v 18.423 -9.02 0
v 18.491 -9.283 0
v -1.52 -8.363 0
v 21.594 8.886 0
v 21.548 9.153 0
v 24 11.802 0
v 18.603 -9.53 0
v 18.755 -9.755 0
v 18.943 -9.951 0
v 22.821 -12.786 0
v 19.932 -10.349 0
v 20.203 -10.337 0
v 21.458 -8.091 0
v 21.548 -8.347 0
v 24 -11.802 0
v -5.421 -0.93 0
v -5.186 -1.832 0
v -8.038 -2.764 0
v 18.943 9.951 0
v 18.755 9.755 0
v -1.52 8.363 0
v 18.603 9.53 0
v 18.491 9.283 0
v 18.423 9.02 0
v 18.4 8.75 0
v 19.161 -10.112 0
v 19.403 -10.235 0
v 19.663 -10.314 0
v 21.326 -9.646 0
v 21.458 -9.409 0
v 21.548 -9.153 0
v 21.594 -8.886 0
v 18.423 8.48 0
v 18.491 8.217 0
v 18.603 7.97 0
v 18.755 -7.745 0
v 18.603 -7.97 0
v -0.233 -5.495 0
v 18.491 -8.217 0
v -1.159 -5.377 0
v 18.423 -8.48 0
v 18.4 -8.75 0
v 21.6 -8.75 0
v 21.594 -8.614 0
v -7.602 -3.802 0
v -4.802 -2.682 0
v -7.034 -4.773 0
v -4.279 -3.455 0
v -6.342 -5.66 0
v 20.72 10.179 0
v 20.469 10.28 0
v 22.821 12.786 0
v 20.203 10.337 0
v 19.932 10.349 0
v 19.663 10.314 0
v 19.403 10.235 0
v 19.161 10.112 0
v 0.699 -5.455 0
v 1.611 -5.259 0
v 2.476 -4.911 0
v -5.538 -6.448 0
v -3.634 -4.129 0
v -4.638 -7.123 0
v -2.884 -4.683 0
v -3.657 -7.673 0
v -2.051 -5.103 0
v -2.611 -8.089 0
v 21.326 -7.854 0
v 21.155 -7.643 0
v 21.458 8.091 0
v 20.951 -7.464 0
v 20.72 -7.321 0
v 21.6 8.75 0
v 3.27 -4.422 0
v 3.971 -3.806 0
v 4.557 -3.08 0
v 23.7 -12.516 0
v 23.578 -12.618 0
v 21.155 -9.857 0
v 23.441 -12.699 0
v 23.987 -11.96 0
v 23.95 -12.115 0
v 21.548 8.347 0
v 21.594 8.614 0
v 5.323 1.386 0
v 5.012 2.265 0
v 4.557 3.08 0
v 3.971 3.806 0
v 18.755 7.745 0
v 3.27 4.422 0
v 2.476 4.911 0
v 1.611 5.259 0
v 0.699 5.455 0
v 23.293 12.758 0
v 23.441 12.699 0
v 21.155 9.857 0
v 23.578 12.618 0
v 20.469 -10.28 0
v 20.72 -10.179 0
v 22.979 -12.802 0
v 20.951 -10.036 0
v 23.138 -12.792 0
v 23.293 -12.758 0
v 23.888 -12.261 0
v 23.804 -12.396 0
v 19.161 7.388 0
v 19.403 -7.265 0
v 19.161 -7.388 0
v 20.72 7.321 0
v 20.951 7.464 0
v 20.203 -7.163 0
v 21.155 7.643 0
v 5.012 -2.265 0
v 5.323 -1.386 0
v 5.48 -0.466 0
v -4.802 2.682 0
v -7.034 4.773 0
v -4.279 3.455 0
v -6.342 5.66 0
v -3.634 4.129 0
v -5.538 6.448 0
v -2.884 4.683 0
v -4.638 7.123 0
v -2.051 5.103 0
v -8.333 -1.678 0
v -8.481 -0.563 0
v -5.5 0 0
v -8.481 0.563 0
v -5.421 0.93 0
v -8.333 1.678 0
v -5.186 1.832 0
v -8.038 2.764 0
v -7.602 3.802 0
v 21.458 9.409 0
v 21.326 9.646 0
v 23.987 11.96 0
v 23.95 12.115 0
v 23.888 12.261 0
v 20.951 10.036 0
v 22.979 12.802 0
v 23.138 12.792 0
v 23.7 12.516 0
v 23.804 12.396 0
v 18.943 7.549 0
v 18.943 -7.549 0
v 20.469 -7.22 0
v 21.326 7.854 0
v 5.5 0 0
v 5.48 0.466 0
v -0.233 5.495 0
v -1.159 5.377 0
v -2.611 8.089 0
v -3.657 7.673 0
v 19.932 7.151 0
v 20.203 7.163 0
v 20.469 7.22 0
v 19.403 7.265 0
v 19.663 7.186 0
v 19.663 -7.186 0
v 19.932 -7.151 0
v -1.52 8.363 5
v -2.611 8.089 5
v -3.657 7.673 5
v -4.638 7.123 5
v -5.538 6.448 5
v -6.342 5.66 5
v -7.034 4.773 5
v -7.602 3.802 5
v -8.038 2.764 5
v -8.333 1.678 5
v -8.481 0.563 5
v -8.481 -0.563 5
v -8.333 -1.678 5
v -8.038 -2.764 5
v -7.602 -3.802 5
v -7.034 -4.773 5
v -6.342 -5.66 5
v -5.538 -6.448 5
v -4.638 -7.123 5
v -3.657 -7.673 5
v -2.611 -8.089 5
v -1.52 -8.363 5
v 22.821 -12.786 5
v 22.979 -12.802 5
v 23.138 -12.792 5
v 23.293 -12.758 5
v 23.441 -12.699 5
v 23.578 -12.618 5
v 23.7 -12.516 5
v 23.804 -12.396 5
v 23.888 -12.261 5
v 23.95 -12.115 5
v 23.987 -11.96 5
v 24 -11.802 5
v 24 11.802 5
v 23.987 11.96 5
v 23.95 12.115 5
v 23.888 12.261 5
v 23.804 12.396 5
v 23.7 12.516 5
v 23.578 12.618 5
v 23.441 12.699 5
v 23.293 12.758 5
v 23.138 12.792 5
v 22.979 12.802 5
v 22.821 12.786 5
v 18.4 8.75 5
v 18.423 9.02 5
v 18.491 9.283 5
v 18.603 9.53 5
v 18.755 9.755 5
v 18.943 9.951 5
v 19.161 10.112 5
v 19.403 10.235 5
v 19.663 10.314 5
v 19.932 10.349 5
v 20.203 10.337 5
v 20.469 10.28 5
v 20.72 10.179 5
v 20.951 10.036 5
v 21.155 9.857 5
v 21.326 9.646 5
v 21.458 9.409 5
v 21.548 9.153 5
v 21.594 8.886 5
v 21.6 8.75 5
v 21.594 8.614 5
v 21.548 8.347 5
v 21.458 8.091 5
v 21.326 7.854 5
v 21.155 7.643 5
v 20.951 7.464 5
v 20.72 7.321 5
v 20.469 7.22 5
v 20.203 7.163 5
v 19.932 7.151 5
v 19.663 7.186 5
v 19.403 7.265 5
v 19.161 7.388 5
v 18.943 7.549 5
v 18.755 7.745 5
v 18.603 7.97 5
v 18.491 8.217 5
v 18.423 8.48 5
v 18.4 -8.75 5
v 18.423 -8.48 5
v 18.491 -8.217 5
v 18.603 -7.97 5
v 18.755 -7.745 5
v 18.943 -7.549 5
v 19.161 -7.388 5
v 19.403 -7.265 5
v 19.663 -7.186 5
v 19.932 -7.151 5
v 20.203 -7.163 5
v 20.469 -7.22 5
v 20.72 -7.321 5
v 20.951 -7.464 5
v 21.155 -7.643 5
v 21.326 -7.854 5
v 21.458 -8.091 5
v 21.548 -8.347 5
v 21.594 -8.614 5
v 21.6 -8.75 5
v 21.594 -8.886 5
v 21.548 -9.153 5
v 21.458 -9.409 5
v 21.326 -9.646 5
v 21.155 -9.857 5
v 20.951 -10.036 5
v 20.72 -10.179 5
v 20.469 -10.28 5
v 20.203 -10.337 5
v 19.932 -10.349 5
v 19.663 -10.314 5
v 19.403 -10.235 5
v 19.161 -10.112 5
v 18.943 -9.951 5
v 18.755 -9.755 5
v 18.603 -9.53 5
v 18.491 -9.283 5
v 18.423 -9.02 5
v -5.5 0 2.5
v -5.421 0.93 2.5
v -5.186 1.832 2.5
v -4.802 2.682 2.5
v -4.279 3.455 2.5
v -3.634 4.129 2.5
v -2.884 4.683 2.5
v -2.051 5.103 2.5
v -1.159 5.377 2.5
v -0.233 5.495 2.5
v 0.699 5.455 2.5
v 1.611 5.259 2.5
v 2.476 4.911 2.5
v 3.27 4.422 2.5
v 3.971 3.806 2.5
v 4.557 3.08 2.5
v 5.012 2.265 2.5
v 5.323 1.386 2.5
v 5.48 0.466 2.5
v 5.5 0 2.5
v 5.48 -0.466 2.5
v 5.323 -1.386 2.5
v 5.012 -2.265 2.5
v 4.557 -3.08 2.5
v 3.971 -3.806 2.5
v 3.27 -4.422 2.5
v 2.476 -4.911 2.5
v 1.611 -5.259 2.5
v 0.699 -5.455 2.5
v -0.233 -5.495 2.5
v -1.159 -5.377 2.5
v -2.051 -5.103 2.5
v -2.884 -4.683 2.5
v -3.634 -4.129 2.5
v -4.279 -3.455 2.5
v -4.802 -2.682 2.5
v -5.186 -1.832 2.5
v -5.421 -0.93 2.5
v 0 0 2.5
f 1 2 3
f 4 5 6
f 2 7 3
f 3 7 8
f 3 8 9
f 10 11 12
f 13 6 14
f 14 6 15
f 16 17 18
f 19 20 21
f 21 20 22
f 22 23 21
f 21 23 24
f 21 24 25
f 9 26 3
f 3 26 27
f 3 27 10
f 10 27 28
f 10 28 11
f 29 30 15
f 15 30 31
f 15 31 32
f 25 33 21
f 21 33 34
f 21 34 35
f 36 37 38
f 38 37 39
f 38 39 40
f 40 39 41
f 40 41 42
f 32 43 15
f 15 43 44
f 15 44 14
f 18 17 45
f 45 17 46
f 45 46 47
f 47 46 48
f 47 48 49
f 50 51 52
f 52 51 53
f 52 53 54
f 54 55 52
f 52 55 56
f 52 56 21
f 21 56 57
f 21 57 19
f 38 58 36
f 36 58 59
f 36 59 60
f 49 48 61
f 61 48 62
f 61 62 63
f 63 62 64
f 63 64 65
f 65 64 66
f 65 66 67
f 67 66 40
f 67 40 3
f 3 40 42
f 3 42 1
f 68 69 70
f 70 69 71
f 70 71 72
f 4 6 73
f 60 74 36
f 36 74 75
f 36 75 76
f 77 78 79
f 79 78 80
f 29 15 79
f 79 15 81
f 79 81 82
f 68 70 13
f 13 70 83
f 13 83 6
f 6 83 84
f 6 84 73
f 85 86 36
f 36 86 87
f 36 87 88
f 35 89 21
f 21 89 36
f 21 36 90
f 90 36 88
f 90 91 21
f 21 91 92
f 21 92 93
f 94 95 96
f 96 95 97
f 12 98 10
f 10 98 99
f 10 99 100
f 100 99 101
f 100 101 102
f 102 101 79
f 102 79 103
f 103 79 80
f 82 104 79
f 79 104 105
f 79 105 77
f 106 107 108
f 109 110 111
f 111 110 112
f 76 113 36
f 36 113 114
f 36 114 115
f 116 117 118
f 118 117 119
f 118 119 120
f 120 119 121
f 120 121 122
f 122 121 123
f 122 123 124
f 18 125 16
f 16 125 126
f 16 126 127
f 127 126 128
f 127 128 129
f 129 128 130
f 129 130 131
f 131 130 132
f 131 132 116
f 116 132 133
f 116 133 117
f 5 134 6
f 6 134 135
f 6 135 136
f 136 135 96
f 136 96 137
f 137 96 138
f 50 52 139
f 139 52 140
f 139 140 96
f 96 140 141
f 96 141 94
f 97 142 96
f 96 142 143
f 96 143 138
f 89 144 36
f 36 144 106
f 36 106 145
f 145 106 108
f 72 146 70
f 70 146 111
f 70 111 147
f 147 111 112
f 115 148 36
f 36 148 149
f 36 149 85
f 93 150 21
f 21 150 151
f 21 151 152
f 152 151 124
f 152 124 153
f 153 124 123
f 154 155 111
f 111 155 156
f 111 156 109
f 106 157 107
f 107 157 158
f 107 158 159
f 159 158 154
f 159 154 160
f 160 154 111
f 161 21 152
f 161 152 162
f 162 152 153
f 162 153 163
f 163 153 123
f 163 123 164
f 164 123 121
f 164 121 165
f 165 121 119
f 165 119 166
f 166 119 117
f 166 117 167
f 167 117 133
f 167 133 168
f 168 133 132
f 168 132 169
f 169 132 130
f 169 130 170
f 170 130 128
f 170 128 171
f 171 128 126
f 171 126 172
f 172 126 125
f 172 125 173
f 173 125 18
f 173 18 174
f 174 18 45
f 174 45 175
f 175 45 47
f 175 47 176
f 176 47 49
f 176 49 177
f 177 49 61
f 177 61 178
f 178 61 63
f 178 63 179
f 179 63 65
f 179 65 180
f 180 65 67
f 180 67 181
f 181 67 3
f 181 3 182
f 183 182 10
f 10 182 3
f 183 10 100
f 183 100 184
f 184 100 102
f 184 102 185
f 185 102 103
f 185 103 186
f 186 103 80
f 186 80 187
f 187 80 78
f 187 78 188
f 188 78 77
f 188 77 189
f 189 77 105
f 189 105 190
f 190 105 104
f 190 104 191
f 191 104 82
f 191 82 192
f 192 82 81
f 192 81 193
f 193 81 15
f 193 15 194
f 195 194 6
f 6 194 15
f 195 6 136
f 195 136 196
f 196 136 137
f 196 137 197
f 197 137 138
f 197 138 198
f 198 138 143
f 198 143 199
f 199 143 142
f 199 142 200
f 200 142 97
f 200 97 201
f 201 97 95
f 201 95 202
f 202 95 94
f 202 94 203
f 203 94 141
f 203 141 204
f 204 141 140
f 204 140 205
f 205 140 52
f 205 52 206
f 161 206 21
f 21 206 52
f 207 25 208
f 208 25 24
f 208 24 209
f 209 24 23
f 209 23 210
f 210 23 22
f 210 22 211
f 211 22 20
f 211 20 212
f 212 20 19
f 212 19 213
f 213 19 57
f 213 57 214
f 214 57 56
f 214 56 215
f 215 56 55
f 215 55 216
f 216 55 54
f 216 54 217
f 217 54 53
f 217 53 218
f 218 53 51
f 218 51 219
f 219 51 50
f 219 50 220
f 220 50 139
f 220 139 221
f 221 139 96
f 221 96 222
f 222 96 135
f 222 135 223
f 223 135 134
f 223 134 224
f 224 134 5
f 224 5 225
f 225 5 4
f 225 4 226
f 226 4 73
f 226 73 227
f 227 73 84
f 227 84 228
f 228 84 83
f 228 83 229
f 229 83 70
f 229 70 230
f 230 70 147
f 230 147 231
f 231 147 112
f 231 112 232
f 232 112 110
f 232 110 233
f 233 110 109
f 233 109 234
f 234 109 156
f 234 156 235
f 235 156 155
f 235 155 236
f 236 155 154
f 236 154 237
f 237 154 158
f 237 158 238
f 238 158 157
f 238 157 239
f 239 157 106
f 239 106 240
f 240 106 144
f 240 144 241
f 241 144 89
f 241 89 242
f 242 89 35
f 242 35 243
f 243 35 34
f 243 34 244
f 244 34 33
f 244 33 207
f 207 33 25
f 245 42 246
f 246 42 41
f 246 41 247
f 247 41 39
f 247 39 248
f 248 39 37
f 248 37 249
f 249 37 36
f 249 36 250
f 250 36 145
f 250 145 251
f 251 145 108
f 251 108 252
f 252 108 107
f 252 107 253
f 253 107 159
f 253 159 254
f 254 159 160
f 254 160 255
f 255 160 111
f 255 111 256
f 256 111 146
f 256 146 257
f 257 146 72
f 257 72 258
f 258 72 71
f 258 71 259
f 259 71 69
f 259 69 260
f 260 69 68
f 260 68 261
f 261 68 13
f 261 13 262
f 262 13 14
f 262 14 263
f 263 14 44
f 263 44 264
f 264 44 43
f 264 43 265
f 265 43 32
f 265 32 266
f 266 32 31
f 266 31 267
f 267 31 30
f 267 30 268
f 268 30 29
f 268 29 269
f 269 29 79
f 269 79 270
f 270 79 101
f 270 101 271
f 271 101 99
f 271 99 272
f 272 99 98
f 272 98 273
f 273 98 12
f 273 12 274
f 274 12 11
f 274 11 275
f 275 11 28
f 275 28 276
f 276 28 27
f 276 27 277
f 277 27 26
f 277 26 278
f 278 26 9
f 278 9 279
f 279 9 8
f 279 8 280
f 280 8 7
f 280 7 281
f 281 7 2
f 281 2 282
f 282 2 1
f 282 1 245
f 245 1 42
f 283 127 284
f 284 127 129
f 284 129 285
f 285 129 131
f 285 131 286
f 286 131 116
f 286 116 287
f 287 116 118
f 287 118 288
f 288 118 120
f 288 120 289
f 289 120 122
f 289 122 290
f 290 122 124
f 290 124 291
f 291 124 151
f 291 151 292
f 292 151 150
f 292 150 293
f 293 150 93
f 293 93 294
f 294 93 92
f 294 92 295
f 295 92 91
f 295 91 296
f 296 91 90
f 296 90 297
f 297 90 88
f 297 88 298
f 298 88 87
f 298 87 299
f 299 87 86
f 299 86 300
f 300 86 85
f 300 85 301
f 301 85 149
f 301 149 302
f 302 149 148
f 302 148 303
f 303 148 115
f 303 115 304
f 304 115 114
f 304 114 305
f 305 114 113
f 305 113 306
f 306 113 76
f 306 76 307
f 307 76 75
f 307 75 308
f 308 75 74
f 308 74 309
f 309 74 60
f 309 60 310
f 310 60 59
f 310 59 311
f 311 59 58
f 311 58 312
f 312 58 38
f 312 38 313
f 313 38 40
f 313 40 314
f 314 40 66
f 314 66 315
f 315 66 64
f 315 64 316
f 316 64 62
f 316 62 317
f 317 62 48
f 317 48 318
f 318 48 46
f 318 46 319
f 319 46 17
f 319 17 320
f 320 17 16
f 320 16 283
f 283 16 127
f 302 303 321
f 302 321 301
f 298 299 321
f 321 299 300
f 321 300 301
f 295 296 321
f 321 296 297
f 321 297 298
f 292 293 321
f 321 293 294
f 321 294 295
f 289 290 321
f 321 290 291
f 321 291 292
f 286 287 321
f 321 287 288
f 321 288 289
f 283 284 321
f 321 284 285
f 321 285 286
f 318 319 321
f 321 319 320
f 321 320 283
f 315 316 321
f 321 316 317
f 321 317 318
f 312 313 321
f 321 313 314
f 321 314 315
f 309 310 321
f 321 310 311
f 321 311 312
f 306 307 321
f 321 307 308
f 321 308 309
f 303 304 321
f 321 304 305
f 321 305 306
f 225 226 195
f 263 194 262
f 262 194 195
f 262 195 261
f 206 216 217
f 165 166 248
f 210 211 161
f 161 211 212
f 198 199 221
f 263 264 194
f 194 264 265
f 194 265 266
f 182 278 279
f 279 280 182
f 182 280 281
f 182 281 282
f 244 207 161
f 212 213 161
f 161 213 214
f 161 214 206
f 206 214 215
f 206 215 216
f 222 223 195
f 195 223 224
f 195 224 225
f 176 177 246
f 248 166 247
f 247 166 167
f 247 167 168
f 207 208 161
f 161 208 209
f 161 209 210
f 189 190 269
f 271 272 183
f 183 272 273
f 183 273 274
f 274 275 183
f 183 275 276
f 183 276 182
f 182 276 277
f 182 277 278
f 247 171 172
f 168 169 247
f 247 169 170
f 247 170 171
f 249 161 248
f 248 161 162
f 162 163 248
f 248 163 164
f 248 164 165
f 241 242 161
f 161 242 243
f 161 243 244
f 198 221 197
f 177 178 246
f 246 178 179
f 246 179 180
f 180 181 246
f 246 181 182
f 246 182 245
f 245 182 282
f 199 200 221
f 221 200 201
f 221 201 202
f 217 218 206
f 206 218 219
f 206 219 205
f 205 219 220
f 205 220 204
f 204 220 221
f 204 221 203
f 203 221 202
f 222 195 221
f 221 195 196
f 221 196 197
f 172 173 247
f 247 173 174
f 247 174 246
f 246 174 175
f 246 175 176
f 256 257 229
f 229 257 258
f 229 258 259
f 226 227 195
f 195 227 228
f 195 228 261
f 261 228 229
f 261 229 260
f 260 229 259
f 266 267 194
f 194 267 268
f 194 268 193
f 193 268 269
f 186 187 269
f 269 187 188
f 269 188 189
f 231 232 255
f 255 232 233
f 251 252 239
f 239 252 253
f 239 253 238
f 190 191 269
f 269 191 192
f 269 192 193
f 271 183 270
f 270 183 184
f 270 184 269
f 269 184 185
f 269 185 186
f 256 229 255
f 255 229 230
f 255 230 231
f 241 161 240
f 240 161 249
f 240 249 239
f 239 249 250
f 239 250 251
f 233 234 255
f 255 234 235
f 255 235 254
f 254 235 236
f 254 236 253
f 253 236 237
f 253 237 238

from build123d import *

# Parameters (mm, degrees)
SKETCH_1_R      = 1.6
SKETCH_1_R_2    = 5.5
EXTRUDE_2_DEPTH = 2.5
SKETCH_2_R      = 1.6
EXTRUDE_3_DEPTH = 2.5


with BuildPart() as part:
    # 草图1 → 凸台-拉伸2 (new body)
    with BuildSketch(Plane.XY):
        with BuildLine():
            Line((-1.519577757, 8.363066629), (22.821226146, 12.785815586))
            ThreePointArc((22.821226146, 12.785815586), (23.640790975, 12.569640788), (24, 11.801925394))
            Line((24, 11.801925394), (24, -11.801925394))
            ThreePointArc((24, -11.801925394), (23.640790975, -12.569640788), (22.821226146, -12.785815586))
            Line((22.821226146, -12.785815586), (-1.519577757, -8.363066629))
            ThreePointArc((-1.519577757, -8.363066629), (-8.5, 0), (-1.519577757, 8.363066629))
        make_face()
        with Locations((20, 8.75)):
            Circle(SKETCH_1_R, mode=Mode.SUBTRACT)
        with Locations((20, -8.75)):
            Circle(SKETCH_1_R, mode=Mode.SUBTRACT)
        Circle(SKETCH_1_R_2, mode=Mode.SUBTRACT)
    extrude(amount=EXTRUDE_2_DEPTH)

    # 草图2 → 凸台-拉伸3 (add)
    with BuildSketch(Plane.XY.offset(2.5)):
        with BuildLine():
            Line((-1.519577757, -8.363066629), (22.821226146, -12.785815586))
            ThreePointArc((22.821226146, -12.785815586), (23.640790975, -12.569640788), (24, -11.801925394))
            Line((24, -11.801925394), (24, 11.801925394))
            ThreePointArc((24, 11.801925394), (23.640790975, 12.569640788), (22.821226146, 12.785815586))
            Line((22.821226146, 12.785815586), (-1.519577757, 8.363066629))
            ThreePointArc((-1.519577757, 8.363066629), (-8.5, 0), (-1.519577757, -8.363066629))
        make_face()
        with Locations((20, -8.75)):
            Circle(SKETCH_2_R, mode=Mode.SUBTRACT)
        with Locations((20, 8.75)):
            Circle(SKETCH_2_R, mode=Mode.SUBTRACT)
    extrude(amount=EXTRUDE_3_DEPTH)


solid = part.part
